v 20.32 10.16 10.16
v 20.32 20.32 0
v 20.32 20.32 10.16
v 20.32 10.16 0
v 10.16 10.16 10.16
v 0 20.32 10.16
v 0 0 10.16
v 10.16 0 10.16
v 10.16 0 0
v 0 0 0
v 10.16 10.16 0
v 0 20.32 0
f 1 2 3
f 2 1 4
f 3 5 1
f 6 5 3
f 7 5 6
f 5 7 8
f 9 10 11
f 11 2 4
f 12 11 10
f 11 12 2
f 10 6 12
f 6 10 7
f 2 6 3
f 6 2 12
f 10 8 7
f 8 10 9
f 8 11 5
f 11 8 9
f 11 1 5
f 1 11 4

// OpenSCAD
inches = 25.4; // mm
totalWidth = 0.8 * inches;
totalHeight = 0.4 * inches;
totalDepth = 0.8 * inches;
cutoutWidth = 0.4 * inches;
cutoutDepth = 0.4 * inches;

overcut = 1;

difference () {
    cube([totalWidth, totalDepth, totalHeight]);
    translate([totalWidth - cutoutWidth, -overcut, -overcut])
        cube([cutoutWidth + overcut, cutoutDepth + overcut, totalHeight + 2 * overcut]);
}
